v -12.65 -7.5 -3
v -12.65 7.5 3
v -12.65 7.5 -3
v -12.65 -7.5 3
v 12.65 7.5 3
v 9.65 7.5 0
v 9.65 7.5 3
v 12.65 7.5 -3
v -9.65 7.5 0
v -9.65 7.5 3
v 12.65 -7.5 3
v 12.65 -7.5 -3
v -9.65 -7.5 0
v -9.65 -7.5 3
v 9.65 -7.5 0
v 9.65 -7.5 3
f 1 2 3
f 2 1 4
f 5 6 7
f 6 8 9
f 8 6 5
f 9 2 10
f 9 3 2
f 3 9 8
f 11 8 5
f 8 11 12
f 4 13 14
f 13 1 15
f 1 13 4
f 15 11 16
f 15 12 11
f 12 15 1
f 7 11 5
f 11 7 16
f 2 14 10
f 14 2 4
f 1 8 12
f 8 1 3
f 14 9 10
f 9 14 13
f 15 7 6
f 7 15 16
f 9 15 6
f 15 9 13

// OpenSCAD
// file: meta.scad
deviceFudge=0.5;//mm, fudge factor to account for printing inaccuracy, shrinkage
PCBThickness=1.6; //mm
pinRecepticalTop=5.5;//mm above pcb that the pin receptical extends
pinsHeight=pinRecepticalTop+4.2+2;//mm above pcb, fully extended
maxSubstrateThickness=3;//mm
wallT=3;//mm, wall thickness
PCBShelfW=0.6;//mm, the pcb sits on this
belowPBC=1;//mm extension below PCB
crownFraction=0.55;//fraction of each side length to subtract to make extension corners

solidHeight=pinsHeight;//mm above pcb for solid wall
crownHeight=maxSubstrateThickness+0.5;//mm, corners extension above pin ends
totalHeight=belowPBC+PCBThickness+solidHeight+crownHeight;

module base ( xyDev ) {
    vDeviceDim=xyDev+deviceFudge;
    xyLen=vDeviceDim+wallT*2;
    difference(){
        cube([xyLen,xyLen,totalHeight],center = true);
        translate([0,0,belowPBC]) cube([vDeviceDim,vDeviceDim,totalHeight],center = true);
        cube([vDeviceDim-2*PCBShelfW,vDeviceDim-2*PCBShelfW,totalHeight+1],center = true);
        
        translate([0,xyLen/2,totalHeight/2+(crownHeight+1)/2-crownHeight]) cube([xyLen*crownFraction,xyLen,crownHeight+1],center = true);
        rotate([0,0,180]) translate([-xyLen*crownFraction/2,-xyLen/2,totalHeight/2-crownHeight]) rotate([0,90,0])  linear_extrude(height=xyLen*crownFraction) polygon([[0,0],[0,wallT],[(pinsHeight-pinRecepticalTop),wallT]]);
        
        rotate([0,0,90]) translate([0,xyLen/2,totalHeight/2+(crownHeight+1)/2-crownHeight]) cube([xyLen*crownFraction,xyLen,crownHeight+1],center = true);
        rotate([0,0,270]) translate([-xyLen*crownFraction/2,-xyLen/2,totalHeight/2-crownHeight]) rotate([0,90,0])  linear_extrude(height=xyLen*crownFraction) polygon([[0,0],[0,wallT],[(pinsHeight-pinRecepticalTop),wallT]]);
        
        rotate([0,0,180]) translate([0,xyLen/2,totalHeight/2+(crownHeight+1)/2-crownHeight]) cube([xyLen*crownFraction,xyLen,crownHeight+1],center = true);
        translate([-xyLen*crownFraction/2,-xyLen/2,totalHeight/2-crownHeight]) rotate([0,90,0])  linear_extrude(height=xyLen*crownFraction) polygon([[0,0],[0,wallT],[(pinsHeight-pinRecepticalTop),wallT]]);
        
        rotate([0,0,270]) translate([0,xyLen/2,totalHeight/2+(crownHeight+1)/2-crownHeight]) cube([xyLen*crownFraction,xyLen,crownHeight+1],center = true);
        rotate([0,0,90]) translate([-xyLen*crownFraction/2,-xyLen/2,totalHeight/2-crownHeight]) rotate([0,90,0])  linear_extrude(height=xyLen*crownFraction) polygon([[0,0],[0,wallT],[(pinsHeight-pinRecepticalTop),wallT]]);
    }
}
// main file
include <meta.scad>;

$fn=50;
//deviceDim=28; //mm, x,y dimension of substrate, pcb
deviceDim=30; //mm, x,y dimension of substrate, pcb
capFit=0.4; //mm, trace a circle of this radius around the crown pieces to define the cap cutouts
//capX = 39;//mm
//capY = 60;//mm

vDeviceDim=deviceDim+deviceFudge;
xyLen=vDeviceDim+wallT*2;

capX = xyLen;
capY = xyLen;

windowDim = deviceDim-4*2;
capT = 5;

clipLength=15;
clipThickness=3;

fitFudge = 0;

rotate([-90,0,0])
difference(){
    cube([totalHeight-crownHeight+capT+2*clipThickness,clipThickness+wallT,clipLength],center=true);
    translate([0,-clipThickness,0]) cube([totalHeight-crownHeight+capT+fitFudge,clipThickness+wallT,clipLength],center=true);
}
